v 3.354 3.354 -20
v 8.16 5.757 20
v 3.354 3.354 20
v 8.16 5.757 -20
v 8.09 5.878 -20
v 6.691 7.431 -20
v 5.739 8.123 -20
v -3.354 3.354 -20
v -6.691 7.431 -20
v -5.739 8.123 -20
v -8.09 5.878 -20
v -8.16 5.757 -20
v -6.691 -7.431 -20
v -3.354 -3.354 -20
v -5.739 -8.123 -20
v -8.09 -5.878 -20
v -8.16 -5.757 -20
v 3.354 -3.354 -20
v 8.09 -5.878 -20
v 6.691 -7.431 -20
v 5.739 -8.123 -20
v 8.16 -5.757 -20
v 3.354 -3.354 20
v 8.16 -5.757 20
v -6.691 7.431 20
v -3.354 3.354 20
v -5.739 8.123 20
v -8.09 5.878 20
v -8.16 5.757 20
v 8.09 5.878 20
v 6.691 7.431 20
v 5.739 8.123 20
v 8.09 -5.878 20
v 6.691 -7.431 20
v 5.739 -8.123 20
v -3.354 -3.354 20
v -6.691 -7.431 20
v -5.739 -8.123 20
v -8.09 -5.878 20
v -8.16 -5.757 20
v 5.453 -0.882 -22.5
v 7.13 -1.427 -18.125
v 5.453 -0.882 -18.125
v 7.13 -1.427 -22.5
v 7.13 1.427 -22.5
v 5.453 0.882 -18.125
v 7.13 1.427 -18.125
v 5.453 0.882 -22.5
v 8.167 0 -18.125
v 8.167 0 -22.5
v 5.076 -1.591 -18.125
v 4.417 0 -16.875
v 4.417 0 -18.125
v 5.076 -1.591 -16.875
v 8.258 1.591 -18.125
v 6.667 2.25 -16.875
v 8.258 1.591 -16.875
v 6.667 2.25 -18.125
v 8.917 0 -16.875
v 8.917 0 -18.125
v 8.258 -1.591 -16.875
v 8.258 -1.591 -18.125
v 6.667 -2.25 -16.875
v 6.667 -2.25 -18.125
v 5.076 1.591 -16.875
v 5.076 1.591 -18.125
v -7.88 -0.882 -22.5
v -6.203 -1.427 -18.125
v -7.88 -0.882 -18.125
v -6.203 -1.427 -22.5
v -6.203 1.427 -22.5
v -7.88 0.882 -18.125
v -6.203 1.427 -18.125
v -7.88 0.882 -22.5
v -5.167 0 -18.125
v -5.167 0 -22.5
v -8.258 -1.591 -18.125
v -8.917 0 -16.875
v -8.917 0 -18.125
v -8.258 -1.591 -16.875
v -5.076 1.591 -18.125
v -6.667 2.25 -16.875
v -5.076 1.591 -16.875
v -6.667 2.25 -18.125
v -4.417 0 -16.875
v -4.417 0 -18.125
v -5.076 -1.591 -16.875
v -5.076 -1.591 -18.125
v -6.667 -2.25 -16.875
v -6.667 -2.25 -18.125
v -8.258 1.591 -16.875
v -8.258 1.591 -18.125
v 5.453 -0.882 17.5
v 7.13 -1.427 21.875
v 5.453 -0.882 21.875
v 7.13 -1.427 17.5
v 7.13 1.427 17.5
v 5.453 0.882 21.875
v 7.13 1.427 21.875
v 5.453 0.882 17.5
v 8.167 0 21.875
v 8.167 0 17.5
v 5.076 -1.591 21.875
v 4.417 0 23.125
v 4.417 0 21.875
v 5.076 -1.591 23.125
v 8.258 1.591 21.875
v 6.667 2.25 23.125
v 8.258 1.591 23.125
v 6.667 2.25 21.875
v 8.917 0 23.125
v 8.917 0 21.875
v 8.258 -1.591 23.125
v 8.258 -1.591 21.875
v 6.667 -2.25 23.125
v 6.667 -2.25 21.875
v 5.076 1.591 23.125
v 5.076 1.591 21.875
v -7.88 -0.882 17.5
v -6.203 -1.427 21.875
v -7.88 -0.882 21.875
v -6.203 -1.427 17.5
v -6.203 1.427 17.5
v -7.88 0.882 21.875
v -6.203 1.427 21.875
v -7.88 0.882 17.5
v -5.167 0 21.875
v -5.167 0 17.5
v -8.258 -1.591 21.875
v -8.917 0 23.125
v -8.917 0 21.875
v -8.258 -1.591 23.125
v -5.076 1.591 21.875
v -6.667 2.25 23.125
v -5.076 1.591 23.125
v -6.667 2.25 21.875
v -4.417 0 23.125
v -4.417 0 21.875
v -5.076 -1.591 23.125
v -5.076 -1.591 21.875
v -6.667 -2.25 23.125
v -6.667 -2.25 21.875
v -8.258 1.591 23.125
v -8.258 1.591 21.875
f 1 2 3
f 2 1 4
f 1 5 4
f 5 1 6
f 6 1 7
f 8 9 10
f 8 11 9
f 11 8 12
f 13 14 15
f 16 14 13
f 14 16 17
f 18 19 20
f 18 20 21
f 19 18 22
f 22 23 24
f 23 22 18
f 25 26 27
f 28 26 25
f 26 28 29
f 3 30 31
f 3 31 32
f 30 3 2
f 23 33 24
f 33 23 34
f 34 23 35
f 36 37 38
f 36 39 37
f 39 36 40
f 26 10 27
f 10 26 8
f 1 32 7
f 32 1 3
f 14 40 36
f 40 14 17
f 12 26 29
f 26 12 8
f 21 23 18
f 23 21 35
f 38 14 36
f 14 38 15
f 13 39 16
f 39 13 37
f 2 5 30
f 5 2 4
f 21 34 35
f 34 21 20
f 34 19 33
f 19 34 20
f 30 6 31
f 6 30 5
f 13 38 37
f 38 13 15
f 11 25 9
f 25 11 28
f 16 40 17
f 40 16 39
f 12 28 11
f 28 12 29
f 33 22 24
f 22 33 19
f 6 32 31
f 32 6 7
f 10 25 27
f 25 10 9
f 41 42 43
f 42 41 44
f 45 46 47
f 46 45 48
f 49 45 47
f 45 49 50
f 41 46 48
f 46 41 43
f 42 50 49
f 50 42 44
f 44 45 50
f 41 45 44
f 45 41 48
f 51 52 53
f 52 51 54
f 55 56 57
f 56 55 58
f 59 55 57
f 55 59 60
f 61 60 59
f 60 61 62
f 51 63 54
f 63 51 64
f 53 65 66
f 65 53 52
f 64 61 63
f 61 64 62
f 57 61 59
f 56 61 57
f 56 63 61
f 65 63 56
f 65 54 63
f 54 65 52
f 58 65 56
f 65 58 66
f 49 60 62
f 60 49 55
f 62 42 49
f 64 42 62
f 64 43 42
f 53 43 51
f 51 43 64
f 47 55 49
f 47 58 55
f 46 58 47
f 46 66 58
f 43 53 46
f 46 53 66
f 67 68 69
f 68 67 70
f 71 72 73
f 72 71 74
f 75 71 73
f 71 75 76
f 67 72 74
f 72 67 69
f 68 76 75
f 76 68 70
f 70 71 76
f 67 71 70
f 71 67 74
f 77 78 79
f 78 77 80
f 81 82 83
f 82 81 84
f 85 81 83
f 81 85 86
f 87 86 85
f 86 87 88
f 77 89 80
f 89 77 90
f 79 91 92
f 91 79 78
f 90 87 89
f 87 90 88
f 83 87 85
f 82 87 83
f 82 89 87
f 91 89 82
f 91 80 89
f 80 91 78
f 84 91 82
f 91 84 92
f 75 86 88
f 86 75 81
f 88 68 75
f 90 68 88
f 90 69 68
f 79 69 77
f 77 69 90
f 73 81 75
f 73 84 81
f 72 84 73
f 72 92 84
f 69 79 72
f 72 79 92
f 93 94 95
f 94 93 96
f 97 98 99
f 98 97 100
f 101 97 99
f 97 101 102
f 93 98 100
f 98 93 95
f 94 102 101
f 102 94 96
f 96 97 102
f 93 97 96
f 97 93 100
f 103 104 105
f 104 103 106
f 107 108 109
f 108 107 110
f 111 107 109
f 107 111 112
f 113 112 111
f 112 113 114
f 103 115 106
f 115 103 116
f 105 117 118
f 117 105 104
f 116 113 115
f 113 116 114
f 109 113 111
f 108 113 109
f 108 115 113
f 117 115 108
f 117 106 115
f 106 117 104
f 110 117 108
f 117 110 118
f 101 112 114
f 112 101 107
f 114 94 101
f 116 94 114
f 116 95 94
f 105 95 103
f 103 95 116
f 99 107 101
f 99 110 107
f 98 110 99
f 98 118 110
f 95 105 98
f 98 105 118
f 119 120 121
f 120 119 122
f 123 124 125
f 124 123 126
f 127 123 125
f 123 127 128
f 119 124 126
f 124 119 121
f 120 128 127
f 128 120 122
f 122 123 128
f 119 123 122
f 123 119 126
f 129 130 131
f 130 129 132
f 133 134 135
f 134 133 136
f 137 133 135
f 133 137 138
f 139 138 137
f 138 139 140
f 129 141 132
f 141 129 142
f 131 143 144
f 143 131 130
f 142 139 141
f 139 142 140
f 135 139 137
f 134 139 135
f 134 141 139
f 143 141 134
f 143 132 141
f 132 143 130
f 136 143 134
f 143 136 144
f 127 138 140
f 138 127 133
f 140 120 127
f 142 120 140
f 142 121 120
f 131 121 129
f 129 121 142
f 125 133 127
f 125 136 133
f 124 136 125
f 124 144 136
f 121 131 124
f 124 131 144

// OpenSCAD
// Parameters
main_body_diameter = 20;
main_body_length = 40;
screw_diameter = 3;
screw_length = 5;
helical_cut_width = 3;
helical_cut_depth = 5;
num_helical_cuts = 4;

// Main body with helical cuts
module main_body() {
    difference() {
        cylinder(d=main_body_diameter, h=main_body_length, center=true);
        
        // Helical cuts
        for (i = [0:num_helical_cuts-1]) {
            rotate([0, 0, i * (360 / num_helical_cuts)])
            translate([0, 0, -main_body_length/2])
            linear_extrude(height=main_body_length)
            offset(r=helical_cut_width/2)
            polygon(points=[[0,0], [main_body_diameter/2, helical_cut_depth], [main_body_diameter/2, -helical_cut_depth]]);
        }
        
        // Clamping screw holes
        for (z = [-main_body_length/2, main_body_length/2]) {
            translate([main_body_diameter/3, 0, z])
            rotate([90, 0, 0])
            cylinder(d=screw_diameter, h=screw_length, center=true);
            
            translate([-main_body_diameter/3, 0, z])
            rotate([90, 0, 0])
            cylinder(d=screw_diameter, h=screw_length, center=true);
        }
    }
}

// Clamping screw
module clamping_screw() {
    union() {
        cylinder(d=screw_diameter, h=screw_length, center=true);
        translate([0, 0, screw_length/2])
        cylinder(d=screw_diameter*1.5, h=screw_length/4, center=true);
    }
}

// Assemble the model
module flexible_coupling() {
    main_body();
    
    // Positioning the screws
    for (z = [-main_body_length/2, main_body_length/2]) {
        translate([main_body_diameter/3, 0, z])
        clamping_screw();
        
        translate([-main_body_diameter/3, 0, z])
        clamping_screw();
    }
}

// Render the model
flexible_coupling();
